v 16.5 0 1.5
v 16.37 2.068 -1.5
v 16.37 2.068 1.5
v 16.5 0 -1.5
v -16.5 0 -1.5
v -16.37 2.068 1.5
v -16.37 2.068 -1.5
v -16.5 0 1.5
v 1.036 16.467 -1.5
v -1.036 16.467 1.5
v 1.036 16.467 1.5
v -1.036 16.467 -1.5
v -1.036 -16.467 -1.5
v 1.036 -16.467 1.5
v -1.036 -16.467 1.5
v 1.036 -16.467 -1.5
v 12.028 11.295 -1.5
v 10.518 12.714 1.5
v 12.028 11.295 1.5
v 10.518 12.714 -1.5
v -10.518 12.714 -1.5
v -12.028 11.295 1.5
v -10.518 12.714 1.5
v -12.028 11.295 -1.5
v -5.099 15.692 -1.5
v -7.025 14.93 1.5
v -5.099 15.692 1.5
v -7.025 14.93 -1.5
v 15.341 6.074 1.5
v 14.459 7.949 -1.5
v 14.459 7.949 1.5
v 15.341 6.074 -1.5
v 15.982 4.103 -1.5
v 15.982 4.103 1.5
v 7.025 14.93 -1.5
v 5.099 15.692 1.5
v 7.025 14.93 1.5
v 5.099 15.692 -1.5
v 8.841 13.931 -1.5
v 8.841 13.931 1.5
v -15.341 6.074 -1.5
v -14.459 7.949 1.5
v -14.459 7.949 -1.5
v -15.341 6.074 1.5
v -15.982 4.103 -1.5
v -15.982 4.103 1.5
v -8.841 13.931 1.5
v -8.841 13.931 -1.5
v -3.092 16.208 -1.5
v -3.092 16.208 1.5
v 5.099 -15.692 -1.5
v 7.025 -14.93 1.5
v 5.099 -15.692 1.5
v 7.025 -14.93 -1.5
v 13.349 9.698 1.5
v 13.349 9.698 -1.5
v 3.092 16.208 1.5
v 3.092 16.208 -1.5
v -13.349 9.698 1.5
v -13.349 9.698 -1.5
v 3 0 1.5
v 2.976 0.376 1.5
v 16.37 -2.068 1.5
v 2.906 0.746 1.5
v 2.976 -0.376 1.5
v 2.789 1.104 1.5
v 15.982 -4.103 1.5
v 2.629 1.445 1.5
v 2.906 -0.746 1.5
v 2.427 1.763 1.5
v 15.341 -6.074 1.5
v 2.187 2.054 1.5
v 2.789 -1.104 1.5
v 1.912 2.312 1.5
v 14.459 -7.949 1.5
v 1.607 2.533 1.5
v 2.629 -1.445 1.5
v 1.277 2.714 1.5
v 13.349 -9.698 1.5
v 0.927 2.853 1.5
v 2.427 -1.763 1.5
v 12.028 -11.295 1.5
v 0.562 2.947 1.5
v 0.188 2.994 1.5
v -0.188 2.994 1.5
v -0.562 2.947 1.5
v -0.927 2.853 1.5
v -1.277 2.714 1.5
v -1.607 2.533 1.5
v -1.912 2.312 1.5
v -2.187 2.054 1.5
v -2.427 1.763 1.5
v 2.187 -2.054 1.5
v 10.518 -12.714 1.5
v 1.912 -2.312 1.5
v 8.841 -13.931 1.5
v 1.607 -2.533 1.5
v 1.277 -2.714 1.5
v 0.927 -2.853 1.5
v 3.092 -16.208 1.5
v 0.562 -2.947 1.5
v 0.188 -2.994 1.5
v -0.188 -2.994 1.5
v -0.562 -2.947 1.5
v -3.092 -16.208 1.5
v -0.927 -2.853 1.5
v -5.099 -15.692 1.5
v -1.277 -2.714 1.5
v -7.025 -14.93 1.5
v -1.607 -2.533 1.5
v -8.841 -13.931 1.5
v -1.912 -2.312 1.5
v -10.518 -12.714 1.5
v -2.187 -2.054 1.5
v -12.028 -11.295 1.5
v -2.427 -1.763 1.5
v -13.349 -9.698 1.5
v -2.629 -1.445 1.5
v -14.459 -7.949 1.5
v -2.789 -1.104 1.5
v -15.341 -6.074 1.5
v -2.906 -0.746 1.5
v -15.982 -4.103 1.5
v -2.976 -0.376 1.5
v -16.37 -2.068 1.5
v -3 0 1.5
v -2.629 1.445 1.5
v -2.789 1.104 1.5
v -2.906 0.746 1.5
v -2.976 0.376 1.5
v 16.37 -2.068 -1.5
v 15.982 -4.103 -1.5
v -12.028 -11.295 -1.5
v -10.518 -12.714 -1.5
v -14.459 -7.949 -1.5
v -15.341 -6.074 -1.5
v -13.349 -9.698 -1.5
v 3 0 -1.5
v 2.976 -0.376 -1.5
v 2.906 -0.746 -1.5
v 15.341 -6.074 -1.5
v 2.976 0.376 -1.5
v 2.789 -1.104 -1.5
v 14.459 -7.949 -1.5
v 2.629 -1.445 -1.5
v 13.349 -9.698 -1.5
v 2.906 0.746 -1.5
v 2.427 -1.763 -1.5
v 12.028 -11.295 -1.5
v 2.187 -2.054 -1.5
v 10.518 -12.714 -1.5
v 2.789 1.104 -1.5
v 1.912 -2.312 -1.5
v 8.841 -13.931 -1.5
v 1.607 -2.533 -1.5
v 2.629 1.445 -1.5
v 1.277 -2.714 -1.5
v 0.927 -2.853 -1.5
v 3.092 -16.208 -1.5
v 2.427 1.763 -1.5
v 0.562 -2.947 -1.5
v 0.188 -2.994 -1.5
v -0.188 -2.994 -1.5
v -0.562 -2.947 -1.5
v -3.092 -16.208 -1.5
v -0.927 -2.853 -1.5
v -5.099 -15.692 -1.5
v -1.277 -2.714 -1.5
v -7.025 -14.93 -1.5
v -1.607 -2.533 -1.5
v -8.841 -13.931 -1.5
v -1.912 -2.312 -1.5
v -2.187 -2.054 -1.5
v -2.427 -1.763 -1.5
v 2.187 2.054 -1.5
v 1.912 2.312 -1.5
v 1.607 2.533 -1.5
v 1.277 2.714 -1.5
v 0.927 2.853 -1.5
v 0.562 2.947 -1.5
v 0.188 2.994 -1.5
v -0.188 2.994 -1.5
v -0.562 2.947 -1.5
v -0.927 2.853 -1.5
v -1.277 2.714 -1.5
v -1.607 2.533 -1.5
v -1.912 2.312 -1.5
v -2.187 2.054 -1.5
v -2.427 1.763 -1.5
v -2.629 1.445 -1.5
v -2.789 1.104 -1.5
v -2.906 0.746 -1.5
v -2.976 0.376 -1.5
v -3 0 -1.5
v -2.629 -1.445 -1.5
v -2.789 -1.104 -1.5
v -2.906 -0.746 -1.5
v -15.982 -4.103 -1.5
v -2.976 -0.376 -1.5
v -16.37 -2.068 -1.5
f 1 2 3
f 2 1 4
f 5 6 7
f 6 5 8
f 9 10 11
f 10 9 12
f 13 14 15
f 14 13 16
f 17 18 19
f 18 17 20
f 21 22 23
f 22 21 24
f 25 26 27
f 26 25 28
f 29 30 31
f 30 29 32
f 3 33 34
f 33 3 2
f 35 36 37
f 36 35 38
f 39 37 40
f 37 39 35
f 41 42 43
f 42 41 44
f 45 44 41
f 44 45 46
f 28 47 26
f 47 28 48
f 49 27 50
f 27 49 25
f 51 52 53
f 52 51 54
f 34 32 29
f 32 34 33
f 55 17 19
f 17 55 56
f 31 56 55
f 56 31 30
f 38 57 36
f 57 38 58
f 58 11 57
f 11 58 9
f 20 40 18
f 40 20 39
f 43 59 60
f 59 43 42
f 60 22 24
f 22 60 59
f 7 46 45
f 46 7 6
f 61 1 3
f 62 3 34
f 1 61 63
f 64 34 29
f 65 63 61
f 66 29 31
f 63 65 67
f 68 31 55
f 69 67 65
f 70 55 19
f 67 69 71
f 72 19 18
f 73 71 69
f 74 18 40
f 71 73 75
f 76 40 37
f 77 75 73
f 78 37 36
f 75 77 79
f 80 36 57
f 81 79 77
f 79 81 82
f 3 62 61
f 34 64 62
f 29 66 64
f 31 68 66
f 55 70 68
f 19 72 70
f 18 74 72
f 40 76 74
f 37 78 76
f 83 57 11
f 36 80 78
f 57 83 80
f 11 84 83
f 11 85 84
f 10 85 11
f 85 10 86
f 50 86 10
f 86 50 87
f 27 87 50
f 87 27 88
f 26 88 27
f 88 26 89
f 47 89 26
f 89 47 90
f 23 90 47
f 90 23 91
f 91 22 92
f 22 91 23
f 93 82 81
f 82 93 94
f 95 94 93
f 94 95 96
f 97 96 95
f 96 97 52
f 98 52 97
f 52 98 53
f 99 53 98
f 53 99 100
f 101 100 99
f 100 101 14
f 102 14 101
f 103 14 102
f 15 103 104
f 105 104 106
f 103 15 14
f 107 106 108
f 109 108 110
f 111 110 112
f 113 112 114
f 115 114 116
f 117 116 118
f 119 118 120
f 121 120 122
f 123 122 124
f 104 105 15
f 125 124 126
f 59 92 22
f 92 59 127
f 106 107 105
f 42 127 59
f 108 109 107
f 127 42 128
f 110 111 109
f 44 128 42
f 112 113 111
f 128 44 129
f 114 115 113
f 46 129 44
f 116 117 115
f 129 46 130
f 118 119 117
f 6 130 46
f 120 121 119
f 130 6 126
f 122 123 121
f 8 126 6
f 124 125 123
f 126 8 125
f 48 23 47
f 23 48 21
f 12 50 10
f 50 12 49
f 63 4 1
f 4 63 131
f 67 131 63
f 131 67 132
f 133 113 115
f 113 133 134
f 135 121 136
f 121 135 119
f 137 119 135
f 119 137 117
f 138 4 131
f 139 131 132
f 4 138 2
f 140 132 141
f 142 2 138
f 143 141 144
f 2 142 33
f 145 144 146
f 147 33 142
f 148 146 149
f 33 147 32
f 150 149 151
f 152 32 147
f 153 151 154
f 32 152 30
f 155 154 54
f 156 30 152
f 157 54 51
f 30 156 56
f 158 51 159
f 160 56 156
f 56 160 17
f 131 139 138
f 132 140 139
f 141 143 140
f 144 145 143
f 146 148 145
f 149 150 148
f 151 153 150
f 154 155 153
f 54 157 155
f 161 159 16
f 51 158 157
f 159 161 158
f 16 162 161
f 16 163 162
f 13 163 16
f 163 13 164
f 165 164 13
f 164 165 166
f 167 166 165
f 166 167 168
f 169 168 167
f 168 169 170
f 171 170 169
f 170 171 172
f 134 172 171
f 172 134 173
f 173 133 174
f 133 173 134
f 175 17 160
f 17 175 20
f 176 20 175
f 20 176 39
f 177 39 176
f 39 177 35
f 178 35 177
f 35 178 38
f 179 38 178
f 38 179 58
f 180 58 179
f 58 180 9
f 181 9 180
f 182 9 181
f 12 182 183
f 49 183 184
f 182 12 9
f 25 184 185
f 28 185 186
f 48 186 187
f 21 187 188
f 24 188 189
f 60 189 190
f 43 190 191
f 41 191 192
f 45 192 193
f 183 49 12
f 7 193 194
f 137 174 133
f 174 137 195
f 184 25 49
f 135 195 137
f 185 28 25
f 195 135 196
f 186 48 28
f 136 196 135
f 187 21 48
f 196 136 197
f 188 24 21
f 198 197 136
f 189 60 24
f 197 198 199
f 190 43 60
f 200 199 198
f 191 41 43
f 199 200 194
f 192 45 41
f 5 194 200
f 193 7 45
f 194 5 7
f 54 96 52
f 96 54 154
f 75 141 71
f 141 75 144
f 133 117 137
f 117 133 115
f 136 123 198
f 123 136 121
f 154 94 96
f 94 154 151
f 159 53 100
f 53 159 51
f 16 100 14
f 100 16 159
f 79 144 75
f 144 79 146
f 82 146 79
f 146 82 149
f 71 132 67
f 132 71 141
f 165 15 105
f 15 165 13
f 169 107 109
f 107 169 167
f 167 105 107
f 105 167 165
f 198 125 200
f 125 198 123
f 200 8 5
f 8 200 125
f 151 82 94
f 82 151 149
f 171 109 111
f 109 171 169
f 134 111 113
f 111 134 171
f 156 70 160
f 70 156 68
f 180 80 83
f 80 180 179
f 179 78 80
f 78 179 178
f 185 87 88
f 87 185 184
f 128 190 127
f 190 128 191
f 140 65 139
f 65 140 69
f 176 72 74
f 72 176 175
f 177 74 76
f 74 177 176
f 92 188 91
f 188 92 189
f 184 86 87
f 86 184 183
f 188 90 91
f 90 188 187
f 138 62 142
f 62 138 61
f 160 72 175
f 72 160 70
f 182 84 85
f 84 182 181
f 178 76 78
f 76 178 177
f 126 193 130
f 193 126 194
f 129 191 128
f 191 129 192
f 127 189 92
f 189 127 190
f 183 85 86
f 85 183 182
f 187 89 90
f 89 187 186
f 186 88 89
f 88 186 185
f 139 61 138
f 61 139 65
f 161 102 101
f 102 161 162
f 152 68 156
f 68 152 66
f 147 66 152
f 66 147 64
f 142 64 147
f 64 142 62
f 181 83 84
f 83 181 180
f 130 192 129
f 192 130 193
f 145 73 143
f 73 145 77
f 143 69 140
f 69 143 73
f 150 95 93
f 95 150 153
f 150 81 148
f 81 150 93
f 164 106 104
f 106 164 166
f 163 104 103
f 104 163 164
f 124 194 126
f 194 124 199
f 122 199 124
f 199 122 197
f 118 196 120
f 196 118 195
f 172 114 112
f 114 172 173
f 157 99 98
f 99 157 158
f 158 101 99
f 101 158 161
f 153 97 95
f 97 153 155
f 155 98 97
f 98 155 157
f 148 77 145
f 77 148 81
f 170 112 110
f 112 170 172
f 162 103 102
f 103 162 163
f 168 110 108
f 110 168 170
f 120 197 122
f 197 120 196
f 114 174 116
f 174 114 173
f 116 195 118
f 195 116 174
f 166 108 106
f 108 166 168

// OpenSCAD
$fn = 50;


difference() {
	union() {
		translate(v = [0, 0, -1.5000000000]) {
			cylinder(h = 3, r = 16.5000000000);
		}
	}
	union() {
		translate(v = [0, 0, -100.0000000000]) {
			cylinder(h = 200, r = 3);
		}
	}
}
